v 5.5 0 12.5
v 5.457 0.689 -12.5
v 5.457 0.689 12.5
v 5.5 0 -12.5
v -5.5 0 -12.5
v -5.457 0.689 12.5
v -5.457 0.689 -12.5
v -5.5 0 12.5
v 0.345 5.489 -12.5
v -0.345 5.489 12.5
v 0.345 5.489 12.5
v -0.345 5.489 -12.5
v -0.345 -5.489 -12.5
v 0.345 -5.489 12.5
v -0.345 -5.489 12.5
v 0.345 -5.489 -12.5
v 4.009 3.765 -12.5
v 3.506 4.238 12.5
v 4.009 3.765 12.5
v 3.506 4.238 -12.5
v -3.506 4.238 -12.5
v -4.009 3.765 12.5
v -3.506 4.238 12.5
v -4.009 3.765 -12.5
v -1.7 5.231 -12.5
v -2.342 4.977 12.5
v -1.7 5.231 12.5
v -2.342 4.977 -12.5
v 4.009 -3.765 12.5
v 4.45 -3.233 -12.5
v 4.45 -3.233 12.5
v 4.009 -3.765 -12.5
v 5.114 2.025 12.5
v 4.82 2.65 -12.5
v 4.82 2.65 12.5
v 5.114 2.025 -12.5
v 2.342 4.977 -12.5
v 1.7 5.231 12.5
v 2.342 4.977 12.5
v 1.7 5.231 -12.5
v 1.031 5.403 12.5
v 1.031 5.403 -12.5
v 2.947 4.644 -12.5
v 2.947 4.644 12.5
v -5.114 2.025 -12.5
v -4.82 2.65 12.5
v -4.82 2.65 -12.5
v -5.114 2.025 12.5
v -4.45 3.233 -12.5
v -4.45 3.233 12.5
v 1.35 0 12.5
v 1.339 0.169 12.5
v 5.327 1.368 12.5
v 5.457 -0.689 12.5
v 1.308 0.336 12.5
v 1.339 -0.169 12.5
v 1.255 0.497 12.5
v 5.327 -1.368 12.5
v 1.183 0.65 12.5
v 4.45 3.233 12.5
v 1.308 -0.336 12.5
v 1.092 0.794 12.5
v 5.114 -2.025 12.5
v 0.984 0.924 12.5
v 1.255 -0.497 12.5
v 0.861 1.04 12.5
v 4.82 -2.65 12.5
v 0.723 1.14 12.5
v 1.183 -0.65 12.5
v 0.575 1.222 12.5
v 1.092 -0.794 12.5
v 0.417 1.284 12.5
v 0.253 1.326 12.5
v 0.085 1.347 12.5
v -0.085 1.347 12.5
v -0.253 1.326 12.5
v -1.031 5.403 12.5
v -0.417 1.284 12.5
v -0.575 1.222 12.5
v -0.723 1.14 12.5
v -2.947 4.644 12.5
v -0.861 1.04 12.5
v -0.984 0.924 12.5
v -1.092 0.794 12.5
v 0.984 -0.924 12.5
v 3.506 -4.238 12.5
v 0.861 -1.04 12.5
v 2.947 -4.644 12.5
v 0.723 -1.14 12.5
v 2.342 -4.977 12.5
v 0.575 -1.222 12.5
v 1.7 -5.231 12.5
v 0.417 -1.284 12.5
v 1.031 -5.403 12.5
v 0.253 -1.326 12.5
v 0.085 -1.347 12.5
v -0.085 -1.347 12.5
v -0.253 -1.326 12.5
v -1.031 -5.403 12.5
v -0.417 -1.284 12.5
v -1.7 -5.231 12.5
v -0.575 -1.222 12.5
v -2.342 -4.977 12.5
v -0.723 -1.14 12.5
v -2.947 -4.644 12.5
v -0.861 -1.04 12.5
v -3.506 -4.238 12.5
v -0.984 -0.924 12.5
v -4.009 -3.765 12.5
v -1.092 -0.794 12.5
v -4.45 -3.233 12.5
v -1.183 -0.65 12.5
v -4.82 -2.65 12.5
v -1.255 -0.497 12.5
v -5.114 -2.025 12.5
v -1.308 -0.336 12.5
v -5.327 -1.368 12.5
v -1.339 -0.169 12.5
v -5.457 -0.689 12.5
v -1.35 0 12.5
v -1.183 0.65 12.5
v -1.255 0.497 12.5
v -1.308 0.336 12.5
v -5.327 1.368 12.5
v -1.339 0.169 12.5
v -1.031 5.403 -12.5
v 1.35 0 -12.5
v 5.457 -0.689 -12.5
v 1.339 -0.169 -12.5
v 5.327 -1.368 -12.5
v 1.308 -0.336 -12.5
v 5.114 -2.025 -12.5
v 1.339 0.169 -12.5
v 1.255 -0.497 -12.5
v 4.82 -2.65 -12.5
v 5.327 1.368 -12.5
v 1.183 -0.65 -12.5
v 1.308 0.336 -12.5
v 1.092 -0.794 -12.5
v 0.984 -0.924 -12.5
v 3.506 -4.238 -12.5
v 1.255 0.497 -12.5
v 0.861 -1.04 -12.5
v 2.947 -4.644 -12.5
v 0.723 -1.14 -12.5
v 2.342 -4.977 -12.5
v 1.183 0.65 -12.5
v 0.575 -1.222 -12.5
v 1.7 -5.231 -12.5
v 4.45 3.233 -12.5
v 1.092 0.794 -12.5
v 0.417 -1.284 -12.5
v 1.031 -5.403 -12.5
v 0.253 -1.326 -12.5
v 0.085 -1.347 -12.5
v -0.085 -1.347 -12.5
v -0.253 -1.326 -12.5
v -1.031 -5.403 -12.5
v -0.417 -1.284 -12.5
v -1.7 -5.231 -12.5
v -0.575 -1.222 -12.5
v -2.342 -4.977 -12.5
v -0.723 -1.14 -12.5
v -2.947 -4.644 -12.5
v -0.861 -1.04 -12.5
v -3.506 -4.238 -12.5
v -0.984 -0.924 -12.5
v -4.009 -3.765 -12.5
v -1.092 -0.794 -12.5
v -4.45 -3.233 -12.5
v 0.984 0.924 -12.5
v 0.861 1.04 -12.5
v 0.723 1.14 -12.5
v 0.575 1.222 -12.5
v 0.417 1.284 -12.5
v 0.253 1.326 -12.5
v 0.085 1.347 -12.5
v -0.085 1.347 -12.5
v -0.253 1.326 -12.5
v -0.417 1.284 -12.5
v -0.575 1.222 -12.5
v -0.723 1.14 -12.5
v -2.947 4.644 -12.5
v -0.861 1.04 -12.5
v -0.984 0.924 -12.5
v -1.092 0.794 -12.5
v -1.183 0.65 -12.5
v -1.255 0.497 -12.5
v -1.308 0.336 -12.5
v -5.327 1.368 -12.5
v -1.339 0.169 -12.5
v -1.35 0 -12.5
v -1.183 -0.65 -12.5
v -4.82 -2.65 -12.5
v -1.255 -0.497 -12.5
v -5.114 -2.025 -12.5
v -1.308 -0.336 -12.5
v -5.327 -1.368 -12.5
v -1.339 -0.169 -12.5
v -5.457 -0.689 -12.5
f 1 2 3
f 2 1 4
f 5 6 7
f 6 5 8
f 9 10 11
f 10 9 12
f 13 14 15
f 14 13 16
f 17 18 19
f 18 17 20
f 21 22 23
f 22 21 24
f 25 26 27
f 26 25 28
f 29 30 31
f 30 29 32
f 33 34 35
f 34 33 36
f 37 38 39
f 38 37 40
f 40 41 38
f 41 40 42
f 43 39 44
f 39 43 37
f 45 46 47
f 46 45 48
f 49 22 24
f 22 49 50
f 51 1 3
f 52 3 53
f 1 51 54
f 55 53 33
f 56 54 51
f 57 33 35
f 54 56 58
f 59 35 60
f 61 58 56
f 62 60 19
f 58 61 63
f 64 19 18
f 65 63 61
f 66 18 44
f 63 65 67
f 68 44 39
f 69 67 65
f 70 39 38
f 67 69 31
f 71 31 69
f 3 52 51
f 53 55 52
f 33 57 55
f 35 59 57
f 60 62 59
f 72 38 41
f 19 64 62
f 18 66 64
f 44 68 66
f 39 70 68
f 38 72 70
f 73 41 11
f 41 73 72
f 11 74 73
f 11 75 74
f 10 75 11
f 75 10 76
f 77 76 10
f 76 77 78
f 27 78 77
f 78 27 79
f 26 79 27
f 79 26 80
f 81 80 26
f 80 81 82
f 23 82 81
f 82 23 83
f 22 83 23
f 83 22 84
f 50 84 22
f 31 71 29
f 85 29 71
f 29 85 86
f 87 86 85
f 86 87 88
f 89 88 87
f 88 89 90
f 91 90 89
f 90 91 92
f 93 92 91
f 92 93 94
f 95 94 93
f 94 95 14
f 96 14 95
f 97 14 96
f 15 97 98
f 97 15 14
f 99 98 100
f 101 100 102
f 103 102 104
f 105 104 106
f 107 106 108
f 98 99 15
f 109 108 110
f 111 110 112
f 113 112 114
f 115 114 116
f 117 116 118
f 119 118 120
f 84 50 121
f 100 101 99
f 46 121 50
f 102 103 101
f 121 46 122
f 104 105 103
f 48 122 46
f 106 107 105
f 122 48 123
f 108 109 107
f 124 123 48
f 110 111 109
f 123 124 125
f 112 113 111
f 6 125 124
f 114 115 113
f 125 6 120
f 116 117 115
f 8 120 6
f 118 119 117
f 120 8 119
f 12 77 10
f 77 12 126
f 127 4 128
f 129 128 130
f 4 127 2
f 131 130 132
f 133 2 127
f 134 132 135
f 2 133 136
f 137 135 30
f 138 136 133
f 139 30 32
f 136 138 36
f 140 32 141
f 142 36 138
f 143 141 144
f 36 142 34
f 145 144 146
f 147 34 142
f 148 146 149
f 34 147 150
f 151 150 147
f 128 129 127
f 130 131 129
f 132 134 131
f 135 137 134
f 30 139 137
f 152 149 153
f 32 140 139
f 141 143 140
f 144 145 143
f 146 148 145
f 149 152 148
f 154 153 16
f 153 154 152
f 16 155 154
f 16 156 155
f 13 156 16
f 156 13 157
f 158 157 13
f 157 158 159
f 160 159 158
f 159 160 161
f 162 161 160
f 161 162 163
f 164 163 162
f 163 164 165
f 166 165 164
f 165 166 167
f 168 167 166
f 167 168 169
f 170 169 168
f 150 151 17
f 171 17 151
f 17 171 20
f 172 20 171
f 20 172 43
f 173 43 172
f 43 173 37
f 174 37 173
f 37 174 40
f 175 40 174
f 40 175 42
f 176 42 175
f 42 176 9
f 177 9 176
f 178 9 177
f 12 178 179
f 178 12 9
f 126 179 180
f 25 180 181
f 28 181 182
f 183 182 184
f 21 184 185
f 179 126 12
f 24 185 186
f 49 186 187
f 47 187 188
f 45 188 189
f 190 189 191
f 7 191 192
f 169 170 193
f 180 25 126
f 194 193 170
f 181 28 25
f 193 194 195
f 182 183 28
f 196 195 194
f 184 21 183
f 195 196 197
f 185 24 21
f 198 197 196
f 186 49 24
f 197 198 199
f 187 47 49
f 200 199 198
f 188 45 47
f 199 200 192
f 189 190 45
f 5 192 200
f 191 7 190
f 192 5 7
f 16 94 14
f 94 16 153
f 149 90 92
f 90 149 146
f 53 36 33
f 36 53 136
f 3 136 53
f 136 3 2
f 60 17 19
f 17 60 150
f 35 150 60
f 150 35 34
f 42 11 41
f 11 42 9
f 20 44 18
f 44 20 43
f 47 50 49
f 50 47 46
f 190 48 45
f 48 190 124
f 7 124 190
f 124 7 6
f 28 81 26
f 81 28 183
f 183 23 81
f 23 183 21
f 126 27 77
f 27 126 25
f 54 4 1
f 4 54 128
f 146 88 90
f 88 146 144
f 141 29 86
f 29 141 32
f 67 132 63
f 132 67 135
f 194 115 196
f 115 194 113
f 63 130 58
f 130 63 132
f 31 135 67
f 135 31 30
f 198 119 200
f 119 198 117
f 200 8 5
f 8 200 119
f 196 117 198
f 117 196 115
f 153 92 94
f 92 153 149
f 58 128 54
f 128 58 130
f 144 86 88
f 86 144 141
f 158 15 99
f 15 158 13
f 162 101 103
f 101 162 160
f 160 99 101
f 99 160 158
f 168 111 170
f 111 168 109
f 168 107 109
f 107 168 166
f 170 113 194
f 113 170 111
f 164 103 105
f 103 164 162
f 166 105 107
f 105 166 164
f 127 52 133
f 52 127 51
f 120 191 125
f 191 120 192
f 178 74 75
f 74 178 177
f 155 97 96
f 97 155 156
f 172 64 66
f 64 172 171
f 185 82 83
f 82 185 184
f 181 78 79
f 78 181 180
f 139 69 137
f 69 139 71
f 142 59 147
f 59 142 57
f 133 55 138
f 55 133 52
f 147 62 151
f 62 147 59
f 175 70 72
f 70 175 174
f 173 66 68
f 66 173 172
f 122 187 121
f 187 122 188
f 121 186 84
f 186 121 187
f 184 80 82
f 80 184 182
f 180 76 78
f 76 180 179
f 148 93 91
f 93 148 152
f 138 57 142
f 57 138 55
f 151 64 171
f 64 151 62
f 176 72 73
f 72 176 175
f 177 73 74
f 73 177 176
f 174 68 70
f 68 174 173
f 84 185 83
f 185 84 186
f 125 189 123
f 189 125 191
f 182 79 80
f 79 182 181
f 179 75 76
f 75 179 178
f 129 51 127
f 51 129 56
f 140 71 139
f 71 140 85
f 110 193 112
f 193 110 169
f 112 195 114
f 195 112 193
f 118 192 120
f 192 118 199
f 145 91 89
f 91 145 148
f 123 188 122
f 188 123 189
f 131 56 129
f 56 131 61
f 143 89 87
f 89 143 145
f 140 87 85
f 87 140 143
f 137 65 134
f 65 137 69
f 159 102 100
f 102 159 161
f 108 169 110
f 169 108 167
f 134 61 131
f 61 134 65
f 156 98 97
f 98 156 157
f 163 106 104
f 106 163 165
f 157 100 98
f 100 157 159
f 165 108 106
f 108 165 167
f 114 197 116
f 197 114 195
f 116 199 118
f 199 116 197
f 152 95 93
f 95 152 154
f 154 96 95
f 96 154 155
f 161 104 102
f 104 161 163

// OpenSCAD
$fn = 50;


difference() {
	union() {
		translate(v = [0, 0, -12.5000000000]) {
			cylinder(h = 25, r = 5.5000000000);
		}
	}
	union() {
		translate(v = [0, 0, -100.0000000000]) {
			cylinder(h = 200, r = 1.3500000000);
		}
	}
}
